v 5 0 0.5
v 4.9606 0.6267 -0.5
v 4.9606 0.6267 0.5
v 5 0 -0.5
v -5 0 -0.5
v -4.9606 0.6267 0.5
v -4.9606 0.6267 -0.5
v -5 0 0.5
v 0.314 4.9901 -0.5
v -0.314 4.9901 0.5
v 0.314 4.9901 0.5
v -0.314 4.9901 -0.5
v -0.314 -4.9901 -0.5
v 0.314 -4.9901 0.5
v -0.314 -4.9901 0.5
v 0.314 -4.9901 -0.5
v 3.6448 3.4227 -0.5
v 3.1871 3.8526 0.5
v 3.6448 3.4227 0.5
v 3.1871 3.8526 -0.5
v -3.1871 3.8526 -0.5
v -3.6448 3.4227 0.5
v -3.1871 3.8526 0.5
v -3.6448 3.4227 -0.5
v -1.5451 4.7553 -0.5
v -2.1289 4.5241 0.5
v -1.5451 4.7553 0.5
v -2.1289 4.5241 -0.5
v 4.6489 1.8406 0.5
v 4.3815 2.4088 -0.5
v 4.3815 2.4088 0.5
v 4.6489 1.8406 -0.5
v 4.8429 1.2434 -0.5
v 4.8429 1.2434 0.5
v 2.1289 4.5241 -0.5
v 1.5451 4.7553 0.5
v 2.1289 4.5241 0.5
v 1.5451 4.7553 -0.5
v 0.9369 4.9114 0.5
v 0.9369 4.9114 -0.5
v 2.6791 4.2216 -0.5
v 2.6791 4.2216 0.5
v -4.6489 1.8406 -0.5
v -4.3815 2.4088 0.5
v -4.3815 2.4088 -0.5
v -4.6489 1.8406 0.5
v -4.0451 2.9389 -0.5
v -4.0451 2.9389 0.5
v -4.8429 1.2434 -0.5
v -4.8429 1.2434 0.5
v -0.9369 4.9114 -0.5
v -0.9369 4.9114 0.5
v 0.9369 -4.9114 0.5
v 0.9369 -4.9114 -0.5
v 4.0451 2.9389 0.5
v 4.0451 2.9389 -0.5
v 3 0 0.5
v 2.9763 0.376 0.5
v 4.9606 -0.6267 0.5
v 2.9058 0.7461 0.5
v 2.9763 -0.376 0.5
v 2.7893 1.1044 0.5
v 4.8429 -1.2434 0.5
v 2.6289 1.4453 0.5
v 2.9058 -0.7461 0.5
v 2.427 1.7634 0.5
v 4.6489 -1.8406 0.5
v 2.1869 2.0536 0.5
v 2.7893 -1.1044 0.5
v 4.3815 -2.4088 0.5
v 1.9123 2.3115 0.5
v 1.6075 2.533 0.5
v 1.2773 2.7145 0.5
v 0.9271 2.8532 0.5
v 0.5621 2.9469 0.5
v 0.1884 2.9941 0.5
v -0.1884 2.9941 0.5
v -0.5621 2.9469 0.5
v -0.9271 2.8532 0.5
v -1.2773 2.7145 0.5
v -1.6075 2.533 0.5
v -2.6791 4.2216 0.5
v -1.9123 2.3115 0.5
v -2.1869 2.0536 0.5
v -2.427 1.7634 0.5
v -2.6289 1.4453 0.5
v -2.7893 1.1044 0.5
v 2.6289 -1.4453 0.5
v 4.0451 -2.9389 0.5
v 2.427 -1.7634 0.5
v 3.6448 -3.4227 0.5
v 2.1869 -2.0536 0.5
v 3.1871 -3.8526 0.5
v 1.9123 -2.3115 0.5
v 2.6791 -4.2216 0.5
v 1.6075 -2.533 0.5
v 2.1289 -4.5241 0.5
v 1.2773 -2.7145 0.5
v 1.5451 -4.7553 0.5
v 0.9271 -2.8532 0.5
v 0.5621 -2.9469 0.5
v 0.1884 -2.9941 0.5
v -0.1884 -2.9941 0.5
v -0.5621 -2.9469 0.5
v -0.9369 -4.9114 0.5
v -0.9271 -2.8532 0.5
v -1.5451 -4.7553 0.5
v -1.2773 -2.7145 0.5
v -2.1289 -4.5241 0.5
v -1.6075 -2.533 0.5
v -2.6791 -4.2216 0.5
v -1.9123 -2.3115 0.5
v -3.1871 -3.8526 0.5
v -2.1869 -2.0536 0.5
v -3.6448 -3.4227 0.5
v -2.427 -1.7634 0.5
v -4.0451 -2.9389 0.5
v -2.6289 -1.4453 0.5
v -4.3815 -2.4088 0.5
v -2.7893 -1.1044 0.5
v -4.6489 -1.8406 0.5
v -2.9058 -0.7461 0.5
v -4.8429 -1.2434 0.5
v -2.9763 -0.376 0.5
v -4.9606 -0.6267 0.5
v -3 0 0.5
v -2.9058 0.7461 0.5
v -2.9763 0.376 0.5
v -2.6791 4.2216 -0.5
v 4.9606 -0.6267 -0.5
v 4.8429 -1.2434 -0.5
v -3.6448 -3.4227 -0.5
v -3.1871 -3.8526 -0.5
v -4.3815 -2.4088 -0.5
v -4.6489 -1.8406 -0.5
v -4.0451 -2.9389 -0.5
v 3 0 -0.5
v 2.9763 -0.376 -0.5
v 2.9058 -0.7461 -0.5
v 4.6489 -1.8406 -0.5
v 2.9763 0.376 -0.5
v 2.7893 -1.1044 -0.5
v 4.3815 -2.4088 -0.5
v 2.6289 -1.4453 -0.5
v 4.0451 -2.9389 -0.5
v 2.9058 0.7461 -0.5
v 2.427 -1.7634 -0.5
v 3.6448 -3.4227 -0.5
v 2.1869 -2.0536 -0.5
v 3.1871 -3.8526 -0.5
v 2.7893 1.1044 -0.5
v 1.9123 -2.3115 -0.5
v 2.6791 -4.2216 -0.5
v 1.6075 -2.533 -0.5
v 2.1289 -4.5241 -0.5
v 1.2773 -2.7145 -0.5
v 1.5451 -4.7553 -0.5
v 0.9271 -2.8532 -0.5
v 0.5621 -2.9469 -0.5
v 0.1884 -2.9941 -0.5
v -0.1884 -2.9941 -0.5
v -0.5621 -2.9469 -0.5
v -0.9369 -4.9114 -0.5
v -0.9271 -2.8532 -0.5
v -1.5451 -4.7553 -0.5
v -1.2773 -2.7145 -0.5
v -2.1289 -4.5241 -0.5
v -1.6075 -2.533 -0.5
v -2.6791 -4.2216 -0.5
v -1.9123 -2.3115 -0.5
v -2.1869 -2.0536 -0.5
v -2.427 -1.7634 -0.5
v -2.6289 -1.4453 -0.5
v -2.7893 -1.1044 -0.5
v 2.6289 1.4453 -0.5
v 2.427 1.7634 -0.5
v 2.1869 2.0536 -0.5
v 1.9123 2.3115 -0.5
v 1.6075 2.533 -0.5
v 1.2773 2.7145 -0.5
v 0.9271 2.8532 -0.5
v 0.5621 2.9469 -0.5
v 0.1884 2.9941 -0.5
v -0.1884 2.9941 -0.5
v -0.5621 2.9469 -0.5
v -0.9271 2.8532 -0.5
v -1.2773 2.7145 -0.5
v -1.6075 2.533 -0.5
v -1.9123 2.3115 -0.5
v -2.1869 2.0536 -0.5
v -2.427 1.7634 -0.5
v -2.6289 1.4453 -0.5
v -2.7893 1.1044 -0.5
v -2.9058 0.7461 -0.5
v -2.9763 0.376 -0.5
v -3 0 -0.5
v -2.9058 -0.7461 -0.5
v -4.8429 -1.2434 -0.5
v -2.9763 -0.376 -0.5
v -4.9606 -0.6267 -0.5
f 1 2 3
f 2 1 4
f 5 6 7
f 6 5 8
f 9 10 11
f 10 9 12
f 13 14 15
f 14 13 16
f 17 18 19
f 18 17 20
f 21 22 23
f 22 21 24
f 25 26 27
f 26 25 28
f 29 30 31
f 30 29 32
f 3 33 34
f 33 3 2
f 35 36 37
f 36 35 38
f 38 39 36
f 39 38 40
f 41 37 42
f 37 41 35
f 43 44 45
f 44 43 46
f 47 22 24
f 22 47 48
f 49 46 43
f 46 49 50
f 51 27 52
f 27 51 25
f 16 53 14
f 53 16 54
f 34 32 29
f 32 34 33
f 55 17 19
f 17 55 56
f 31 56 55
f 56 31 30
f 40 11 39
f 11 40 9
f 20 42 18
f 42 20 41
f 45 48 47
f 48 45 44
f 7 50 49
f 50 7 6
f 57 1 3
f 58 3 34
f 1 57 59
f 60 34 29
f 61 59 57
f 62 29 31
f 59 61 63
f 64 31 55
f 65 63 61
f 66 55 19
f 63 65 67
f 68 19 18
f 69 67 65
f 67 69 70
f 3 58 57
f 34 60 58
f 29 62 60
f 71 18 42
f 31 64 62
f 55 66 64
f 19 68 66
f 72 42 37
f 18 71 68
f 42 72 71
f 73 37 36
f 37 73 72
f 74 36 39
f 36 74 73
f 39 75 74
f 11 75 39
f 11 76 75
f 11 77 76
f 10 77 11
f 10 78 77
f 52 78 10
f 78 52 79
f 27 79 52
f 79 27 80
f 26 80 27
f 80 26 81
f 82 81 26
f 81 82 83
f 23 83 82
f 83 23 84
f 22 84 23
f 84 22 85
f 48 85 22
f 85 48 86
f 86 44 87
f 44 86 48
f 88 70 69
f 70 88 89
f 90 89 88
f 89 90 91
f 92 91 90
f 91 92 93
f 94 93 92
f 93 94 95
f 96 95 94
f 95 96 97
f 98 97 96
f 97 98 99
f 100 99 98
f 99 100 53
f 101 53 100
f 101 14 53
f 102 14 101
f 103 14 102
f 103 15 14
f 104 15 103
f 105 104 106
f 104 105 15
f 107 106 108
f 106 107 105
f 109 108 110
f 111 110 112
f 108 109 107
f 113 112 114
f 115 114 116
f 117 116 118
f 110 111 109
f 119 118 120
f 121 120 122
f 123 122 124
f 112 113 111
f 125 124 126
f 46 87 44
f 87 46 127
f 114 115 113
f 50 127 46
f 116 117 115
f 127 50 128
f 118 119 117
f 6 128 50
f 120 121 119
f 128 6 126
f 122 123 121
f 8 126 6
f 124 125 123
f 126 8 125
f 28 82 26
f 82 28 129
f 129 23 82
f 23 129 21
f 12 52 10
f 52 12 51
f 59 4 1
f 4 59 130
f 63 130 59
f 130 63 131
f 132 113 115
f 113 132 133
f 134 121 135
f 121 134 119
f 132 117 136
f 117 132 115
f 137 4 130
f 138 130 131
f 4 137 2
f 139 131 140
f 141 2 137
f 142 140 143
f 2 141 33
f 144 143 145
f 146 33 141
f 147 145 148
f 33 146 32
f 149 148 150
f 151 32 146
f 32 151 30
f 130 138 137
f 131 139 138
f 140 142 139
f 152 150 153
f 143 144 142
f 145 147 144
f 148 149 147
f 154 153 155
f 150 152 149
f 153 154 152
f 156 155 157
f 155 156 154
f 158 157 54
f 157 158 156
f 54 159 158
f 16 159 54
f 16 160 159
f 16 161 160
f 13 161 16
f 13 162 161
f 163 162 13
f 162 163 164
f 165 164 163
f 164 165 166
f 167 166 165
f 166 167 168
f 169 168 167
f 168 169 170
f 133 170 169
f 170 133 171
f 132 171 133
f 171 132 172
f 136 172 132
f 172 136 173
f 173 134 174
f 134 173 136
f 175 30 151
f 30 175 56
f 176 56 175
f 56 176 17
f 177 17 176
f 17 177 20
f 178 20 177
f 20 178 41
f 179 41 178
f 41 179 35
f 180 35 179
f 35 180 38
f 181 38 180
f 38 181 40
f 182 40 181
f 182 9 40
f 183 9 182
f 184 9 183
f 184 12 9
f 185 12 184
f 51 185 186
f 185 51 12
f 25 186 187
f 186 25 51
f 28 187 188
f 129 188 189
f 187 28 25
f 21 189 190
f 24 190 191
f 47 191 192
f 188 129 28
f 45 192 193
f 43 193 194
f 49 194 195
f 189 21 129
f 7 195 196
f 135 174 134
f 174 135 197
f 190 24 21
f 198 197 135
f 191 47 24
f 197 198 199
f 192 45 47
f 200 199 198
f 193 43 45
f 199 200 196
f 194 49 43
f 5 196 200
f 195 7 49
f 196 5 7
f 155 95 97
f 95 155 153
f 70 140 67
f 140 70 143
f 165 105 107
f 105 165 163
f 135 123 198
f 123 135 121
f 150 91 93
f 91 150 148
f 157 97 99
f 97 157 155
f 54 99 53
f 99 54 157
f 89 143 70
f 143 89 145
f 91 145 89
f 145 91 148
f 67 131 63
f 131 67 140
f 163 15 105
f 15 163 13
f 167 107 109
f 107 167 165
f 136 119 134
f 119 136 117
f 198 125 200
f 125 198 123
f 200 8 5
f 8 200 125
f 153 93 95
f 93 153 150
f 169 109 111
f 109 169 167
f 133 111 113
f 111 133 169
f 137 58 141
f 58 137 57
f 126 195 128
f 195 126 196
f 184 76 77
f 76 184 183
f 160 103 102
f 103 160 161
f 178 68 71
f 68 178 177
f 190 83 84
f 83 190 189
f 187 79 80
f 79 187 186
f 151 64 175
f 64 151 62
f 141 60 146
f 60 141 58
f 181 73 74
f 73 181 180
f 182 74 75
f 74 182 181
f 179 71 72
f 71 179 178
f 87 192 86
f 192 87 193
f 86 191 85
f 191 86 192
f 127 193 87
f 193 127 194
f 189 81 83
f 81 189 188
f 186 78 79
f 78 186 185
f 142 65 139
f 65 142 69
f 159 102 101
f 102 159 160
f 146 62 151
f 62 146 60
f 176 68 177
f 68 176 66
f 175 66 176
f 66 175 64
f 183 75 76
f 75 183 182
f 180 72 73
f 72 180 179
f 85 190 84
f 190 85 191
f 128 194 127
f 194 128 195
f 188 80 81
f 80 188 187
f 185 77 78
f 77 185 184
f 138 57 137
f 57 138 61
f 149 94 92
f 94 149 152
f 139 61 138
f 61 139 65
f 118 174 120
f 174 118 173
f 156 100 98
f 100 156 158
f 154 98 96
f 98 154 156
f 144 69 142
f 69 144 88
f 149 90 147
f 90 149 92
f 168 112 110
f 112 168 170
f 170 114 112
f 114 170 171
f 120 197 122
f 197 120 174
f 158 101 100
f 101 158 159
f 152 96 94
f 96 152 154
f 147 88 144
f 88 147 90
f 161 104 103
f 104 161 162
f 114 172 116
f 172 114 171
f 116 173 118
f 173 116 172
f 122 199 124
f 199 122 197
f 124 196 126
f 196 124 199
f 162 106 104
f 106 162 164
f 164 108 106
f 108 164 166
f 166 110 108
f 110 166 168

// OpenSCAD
$fn = 50;


difference() {
	union() {
		translate(v = [0, 0, -0.5000000000]) {
			cylinder(h = 1, r = 5.0000000000);
		}
	}
	union() {
		translate(v = [0, 0, -100.0000000000]) {
			cylinder(h = 200, r = 3);
		}
	}
}
